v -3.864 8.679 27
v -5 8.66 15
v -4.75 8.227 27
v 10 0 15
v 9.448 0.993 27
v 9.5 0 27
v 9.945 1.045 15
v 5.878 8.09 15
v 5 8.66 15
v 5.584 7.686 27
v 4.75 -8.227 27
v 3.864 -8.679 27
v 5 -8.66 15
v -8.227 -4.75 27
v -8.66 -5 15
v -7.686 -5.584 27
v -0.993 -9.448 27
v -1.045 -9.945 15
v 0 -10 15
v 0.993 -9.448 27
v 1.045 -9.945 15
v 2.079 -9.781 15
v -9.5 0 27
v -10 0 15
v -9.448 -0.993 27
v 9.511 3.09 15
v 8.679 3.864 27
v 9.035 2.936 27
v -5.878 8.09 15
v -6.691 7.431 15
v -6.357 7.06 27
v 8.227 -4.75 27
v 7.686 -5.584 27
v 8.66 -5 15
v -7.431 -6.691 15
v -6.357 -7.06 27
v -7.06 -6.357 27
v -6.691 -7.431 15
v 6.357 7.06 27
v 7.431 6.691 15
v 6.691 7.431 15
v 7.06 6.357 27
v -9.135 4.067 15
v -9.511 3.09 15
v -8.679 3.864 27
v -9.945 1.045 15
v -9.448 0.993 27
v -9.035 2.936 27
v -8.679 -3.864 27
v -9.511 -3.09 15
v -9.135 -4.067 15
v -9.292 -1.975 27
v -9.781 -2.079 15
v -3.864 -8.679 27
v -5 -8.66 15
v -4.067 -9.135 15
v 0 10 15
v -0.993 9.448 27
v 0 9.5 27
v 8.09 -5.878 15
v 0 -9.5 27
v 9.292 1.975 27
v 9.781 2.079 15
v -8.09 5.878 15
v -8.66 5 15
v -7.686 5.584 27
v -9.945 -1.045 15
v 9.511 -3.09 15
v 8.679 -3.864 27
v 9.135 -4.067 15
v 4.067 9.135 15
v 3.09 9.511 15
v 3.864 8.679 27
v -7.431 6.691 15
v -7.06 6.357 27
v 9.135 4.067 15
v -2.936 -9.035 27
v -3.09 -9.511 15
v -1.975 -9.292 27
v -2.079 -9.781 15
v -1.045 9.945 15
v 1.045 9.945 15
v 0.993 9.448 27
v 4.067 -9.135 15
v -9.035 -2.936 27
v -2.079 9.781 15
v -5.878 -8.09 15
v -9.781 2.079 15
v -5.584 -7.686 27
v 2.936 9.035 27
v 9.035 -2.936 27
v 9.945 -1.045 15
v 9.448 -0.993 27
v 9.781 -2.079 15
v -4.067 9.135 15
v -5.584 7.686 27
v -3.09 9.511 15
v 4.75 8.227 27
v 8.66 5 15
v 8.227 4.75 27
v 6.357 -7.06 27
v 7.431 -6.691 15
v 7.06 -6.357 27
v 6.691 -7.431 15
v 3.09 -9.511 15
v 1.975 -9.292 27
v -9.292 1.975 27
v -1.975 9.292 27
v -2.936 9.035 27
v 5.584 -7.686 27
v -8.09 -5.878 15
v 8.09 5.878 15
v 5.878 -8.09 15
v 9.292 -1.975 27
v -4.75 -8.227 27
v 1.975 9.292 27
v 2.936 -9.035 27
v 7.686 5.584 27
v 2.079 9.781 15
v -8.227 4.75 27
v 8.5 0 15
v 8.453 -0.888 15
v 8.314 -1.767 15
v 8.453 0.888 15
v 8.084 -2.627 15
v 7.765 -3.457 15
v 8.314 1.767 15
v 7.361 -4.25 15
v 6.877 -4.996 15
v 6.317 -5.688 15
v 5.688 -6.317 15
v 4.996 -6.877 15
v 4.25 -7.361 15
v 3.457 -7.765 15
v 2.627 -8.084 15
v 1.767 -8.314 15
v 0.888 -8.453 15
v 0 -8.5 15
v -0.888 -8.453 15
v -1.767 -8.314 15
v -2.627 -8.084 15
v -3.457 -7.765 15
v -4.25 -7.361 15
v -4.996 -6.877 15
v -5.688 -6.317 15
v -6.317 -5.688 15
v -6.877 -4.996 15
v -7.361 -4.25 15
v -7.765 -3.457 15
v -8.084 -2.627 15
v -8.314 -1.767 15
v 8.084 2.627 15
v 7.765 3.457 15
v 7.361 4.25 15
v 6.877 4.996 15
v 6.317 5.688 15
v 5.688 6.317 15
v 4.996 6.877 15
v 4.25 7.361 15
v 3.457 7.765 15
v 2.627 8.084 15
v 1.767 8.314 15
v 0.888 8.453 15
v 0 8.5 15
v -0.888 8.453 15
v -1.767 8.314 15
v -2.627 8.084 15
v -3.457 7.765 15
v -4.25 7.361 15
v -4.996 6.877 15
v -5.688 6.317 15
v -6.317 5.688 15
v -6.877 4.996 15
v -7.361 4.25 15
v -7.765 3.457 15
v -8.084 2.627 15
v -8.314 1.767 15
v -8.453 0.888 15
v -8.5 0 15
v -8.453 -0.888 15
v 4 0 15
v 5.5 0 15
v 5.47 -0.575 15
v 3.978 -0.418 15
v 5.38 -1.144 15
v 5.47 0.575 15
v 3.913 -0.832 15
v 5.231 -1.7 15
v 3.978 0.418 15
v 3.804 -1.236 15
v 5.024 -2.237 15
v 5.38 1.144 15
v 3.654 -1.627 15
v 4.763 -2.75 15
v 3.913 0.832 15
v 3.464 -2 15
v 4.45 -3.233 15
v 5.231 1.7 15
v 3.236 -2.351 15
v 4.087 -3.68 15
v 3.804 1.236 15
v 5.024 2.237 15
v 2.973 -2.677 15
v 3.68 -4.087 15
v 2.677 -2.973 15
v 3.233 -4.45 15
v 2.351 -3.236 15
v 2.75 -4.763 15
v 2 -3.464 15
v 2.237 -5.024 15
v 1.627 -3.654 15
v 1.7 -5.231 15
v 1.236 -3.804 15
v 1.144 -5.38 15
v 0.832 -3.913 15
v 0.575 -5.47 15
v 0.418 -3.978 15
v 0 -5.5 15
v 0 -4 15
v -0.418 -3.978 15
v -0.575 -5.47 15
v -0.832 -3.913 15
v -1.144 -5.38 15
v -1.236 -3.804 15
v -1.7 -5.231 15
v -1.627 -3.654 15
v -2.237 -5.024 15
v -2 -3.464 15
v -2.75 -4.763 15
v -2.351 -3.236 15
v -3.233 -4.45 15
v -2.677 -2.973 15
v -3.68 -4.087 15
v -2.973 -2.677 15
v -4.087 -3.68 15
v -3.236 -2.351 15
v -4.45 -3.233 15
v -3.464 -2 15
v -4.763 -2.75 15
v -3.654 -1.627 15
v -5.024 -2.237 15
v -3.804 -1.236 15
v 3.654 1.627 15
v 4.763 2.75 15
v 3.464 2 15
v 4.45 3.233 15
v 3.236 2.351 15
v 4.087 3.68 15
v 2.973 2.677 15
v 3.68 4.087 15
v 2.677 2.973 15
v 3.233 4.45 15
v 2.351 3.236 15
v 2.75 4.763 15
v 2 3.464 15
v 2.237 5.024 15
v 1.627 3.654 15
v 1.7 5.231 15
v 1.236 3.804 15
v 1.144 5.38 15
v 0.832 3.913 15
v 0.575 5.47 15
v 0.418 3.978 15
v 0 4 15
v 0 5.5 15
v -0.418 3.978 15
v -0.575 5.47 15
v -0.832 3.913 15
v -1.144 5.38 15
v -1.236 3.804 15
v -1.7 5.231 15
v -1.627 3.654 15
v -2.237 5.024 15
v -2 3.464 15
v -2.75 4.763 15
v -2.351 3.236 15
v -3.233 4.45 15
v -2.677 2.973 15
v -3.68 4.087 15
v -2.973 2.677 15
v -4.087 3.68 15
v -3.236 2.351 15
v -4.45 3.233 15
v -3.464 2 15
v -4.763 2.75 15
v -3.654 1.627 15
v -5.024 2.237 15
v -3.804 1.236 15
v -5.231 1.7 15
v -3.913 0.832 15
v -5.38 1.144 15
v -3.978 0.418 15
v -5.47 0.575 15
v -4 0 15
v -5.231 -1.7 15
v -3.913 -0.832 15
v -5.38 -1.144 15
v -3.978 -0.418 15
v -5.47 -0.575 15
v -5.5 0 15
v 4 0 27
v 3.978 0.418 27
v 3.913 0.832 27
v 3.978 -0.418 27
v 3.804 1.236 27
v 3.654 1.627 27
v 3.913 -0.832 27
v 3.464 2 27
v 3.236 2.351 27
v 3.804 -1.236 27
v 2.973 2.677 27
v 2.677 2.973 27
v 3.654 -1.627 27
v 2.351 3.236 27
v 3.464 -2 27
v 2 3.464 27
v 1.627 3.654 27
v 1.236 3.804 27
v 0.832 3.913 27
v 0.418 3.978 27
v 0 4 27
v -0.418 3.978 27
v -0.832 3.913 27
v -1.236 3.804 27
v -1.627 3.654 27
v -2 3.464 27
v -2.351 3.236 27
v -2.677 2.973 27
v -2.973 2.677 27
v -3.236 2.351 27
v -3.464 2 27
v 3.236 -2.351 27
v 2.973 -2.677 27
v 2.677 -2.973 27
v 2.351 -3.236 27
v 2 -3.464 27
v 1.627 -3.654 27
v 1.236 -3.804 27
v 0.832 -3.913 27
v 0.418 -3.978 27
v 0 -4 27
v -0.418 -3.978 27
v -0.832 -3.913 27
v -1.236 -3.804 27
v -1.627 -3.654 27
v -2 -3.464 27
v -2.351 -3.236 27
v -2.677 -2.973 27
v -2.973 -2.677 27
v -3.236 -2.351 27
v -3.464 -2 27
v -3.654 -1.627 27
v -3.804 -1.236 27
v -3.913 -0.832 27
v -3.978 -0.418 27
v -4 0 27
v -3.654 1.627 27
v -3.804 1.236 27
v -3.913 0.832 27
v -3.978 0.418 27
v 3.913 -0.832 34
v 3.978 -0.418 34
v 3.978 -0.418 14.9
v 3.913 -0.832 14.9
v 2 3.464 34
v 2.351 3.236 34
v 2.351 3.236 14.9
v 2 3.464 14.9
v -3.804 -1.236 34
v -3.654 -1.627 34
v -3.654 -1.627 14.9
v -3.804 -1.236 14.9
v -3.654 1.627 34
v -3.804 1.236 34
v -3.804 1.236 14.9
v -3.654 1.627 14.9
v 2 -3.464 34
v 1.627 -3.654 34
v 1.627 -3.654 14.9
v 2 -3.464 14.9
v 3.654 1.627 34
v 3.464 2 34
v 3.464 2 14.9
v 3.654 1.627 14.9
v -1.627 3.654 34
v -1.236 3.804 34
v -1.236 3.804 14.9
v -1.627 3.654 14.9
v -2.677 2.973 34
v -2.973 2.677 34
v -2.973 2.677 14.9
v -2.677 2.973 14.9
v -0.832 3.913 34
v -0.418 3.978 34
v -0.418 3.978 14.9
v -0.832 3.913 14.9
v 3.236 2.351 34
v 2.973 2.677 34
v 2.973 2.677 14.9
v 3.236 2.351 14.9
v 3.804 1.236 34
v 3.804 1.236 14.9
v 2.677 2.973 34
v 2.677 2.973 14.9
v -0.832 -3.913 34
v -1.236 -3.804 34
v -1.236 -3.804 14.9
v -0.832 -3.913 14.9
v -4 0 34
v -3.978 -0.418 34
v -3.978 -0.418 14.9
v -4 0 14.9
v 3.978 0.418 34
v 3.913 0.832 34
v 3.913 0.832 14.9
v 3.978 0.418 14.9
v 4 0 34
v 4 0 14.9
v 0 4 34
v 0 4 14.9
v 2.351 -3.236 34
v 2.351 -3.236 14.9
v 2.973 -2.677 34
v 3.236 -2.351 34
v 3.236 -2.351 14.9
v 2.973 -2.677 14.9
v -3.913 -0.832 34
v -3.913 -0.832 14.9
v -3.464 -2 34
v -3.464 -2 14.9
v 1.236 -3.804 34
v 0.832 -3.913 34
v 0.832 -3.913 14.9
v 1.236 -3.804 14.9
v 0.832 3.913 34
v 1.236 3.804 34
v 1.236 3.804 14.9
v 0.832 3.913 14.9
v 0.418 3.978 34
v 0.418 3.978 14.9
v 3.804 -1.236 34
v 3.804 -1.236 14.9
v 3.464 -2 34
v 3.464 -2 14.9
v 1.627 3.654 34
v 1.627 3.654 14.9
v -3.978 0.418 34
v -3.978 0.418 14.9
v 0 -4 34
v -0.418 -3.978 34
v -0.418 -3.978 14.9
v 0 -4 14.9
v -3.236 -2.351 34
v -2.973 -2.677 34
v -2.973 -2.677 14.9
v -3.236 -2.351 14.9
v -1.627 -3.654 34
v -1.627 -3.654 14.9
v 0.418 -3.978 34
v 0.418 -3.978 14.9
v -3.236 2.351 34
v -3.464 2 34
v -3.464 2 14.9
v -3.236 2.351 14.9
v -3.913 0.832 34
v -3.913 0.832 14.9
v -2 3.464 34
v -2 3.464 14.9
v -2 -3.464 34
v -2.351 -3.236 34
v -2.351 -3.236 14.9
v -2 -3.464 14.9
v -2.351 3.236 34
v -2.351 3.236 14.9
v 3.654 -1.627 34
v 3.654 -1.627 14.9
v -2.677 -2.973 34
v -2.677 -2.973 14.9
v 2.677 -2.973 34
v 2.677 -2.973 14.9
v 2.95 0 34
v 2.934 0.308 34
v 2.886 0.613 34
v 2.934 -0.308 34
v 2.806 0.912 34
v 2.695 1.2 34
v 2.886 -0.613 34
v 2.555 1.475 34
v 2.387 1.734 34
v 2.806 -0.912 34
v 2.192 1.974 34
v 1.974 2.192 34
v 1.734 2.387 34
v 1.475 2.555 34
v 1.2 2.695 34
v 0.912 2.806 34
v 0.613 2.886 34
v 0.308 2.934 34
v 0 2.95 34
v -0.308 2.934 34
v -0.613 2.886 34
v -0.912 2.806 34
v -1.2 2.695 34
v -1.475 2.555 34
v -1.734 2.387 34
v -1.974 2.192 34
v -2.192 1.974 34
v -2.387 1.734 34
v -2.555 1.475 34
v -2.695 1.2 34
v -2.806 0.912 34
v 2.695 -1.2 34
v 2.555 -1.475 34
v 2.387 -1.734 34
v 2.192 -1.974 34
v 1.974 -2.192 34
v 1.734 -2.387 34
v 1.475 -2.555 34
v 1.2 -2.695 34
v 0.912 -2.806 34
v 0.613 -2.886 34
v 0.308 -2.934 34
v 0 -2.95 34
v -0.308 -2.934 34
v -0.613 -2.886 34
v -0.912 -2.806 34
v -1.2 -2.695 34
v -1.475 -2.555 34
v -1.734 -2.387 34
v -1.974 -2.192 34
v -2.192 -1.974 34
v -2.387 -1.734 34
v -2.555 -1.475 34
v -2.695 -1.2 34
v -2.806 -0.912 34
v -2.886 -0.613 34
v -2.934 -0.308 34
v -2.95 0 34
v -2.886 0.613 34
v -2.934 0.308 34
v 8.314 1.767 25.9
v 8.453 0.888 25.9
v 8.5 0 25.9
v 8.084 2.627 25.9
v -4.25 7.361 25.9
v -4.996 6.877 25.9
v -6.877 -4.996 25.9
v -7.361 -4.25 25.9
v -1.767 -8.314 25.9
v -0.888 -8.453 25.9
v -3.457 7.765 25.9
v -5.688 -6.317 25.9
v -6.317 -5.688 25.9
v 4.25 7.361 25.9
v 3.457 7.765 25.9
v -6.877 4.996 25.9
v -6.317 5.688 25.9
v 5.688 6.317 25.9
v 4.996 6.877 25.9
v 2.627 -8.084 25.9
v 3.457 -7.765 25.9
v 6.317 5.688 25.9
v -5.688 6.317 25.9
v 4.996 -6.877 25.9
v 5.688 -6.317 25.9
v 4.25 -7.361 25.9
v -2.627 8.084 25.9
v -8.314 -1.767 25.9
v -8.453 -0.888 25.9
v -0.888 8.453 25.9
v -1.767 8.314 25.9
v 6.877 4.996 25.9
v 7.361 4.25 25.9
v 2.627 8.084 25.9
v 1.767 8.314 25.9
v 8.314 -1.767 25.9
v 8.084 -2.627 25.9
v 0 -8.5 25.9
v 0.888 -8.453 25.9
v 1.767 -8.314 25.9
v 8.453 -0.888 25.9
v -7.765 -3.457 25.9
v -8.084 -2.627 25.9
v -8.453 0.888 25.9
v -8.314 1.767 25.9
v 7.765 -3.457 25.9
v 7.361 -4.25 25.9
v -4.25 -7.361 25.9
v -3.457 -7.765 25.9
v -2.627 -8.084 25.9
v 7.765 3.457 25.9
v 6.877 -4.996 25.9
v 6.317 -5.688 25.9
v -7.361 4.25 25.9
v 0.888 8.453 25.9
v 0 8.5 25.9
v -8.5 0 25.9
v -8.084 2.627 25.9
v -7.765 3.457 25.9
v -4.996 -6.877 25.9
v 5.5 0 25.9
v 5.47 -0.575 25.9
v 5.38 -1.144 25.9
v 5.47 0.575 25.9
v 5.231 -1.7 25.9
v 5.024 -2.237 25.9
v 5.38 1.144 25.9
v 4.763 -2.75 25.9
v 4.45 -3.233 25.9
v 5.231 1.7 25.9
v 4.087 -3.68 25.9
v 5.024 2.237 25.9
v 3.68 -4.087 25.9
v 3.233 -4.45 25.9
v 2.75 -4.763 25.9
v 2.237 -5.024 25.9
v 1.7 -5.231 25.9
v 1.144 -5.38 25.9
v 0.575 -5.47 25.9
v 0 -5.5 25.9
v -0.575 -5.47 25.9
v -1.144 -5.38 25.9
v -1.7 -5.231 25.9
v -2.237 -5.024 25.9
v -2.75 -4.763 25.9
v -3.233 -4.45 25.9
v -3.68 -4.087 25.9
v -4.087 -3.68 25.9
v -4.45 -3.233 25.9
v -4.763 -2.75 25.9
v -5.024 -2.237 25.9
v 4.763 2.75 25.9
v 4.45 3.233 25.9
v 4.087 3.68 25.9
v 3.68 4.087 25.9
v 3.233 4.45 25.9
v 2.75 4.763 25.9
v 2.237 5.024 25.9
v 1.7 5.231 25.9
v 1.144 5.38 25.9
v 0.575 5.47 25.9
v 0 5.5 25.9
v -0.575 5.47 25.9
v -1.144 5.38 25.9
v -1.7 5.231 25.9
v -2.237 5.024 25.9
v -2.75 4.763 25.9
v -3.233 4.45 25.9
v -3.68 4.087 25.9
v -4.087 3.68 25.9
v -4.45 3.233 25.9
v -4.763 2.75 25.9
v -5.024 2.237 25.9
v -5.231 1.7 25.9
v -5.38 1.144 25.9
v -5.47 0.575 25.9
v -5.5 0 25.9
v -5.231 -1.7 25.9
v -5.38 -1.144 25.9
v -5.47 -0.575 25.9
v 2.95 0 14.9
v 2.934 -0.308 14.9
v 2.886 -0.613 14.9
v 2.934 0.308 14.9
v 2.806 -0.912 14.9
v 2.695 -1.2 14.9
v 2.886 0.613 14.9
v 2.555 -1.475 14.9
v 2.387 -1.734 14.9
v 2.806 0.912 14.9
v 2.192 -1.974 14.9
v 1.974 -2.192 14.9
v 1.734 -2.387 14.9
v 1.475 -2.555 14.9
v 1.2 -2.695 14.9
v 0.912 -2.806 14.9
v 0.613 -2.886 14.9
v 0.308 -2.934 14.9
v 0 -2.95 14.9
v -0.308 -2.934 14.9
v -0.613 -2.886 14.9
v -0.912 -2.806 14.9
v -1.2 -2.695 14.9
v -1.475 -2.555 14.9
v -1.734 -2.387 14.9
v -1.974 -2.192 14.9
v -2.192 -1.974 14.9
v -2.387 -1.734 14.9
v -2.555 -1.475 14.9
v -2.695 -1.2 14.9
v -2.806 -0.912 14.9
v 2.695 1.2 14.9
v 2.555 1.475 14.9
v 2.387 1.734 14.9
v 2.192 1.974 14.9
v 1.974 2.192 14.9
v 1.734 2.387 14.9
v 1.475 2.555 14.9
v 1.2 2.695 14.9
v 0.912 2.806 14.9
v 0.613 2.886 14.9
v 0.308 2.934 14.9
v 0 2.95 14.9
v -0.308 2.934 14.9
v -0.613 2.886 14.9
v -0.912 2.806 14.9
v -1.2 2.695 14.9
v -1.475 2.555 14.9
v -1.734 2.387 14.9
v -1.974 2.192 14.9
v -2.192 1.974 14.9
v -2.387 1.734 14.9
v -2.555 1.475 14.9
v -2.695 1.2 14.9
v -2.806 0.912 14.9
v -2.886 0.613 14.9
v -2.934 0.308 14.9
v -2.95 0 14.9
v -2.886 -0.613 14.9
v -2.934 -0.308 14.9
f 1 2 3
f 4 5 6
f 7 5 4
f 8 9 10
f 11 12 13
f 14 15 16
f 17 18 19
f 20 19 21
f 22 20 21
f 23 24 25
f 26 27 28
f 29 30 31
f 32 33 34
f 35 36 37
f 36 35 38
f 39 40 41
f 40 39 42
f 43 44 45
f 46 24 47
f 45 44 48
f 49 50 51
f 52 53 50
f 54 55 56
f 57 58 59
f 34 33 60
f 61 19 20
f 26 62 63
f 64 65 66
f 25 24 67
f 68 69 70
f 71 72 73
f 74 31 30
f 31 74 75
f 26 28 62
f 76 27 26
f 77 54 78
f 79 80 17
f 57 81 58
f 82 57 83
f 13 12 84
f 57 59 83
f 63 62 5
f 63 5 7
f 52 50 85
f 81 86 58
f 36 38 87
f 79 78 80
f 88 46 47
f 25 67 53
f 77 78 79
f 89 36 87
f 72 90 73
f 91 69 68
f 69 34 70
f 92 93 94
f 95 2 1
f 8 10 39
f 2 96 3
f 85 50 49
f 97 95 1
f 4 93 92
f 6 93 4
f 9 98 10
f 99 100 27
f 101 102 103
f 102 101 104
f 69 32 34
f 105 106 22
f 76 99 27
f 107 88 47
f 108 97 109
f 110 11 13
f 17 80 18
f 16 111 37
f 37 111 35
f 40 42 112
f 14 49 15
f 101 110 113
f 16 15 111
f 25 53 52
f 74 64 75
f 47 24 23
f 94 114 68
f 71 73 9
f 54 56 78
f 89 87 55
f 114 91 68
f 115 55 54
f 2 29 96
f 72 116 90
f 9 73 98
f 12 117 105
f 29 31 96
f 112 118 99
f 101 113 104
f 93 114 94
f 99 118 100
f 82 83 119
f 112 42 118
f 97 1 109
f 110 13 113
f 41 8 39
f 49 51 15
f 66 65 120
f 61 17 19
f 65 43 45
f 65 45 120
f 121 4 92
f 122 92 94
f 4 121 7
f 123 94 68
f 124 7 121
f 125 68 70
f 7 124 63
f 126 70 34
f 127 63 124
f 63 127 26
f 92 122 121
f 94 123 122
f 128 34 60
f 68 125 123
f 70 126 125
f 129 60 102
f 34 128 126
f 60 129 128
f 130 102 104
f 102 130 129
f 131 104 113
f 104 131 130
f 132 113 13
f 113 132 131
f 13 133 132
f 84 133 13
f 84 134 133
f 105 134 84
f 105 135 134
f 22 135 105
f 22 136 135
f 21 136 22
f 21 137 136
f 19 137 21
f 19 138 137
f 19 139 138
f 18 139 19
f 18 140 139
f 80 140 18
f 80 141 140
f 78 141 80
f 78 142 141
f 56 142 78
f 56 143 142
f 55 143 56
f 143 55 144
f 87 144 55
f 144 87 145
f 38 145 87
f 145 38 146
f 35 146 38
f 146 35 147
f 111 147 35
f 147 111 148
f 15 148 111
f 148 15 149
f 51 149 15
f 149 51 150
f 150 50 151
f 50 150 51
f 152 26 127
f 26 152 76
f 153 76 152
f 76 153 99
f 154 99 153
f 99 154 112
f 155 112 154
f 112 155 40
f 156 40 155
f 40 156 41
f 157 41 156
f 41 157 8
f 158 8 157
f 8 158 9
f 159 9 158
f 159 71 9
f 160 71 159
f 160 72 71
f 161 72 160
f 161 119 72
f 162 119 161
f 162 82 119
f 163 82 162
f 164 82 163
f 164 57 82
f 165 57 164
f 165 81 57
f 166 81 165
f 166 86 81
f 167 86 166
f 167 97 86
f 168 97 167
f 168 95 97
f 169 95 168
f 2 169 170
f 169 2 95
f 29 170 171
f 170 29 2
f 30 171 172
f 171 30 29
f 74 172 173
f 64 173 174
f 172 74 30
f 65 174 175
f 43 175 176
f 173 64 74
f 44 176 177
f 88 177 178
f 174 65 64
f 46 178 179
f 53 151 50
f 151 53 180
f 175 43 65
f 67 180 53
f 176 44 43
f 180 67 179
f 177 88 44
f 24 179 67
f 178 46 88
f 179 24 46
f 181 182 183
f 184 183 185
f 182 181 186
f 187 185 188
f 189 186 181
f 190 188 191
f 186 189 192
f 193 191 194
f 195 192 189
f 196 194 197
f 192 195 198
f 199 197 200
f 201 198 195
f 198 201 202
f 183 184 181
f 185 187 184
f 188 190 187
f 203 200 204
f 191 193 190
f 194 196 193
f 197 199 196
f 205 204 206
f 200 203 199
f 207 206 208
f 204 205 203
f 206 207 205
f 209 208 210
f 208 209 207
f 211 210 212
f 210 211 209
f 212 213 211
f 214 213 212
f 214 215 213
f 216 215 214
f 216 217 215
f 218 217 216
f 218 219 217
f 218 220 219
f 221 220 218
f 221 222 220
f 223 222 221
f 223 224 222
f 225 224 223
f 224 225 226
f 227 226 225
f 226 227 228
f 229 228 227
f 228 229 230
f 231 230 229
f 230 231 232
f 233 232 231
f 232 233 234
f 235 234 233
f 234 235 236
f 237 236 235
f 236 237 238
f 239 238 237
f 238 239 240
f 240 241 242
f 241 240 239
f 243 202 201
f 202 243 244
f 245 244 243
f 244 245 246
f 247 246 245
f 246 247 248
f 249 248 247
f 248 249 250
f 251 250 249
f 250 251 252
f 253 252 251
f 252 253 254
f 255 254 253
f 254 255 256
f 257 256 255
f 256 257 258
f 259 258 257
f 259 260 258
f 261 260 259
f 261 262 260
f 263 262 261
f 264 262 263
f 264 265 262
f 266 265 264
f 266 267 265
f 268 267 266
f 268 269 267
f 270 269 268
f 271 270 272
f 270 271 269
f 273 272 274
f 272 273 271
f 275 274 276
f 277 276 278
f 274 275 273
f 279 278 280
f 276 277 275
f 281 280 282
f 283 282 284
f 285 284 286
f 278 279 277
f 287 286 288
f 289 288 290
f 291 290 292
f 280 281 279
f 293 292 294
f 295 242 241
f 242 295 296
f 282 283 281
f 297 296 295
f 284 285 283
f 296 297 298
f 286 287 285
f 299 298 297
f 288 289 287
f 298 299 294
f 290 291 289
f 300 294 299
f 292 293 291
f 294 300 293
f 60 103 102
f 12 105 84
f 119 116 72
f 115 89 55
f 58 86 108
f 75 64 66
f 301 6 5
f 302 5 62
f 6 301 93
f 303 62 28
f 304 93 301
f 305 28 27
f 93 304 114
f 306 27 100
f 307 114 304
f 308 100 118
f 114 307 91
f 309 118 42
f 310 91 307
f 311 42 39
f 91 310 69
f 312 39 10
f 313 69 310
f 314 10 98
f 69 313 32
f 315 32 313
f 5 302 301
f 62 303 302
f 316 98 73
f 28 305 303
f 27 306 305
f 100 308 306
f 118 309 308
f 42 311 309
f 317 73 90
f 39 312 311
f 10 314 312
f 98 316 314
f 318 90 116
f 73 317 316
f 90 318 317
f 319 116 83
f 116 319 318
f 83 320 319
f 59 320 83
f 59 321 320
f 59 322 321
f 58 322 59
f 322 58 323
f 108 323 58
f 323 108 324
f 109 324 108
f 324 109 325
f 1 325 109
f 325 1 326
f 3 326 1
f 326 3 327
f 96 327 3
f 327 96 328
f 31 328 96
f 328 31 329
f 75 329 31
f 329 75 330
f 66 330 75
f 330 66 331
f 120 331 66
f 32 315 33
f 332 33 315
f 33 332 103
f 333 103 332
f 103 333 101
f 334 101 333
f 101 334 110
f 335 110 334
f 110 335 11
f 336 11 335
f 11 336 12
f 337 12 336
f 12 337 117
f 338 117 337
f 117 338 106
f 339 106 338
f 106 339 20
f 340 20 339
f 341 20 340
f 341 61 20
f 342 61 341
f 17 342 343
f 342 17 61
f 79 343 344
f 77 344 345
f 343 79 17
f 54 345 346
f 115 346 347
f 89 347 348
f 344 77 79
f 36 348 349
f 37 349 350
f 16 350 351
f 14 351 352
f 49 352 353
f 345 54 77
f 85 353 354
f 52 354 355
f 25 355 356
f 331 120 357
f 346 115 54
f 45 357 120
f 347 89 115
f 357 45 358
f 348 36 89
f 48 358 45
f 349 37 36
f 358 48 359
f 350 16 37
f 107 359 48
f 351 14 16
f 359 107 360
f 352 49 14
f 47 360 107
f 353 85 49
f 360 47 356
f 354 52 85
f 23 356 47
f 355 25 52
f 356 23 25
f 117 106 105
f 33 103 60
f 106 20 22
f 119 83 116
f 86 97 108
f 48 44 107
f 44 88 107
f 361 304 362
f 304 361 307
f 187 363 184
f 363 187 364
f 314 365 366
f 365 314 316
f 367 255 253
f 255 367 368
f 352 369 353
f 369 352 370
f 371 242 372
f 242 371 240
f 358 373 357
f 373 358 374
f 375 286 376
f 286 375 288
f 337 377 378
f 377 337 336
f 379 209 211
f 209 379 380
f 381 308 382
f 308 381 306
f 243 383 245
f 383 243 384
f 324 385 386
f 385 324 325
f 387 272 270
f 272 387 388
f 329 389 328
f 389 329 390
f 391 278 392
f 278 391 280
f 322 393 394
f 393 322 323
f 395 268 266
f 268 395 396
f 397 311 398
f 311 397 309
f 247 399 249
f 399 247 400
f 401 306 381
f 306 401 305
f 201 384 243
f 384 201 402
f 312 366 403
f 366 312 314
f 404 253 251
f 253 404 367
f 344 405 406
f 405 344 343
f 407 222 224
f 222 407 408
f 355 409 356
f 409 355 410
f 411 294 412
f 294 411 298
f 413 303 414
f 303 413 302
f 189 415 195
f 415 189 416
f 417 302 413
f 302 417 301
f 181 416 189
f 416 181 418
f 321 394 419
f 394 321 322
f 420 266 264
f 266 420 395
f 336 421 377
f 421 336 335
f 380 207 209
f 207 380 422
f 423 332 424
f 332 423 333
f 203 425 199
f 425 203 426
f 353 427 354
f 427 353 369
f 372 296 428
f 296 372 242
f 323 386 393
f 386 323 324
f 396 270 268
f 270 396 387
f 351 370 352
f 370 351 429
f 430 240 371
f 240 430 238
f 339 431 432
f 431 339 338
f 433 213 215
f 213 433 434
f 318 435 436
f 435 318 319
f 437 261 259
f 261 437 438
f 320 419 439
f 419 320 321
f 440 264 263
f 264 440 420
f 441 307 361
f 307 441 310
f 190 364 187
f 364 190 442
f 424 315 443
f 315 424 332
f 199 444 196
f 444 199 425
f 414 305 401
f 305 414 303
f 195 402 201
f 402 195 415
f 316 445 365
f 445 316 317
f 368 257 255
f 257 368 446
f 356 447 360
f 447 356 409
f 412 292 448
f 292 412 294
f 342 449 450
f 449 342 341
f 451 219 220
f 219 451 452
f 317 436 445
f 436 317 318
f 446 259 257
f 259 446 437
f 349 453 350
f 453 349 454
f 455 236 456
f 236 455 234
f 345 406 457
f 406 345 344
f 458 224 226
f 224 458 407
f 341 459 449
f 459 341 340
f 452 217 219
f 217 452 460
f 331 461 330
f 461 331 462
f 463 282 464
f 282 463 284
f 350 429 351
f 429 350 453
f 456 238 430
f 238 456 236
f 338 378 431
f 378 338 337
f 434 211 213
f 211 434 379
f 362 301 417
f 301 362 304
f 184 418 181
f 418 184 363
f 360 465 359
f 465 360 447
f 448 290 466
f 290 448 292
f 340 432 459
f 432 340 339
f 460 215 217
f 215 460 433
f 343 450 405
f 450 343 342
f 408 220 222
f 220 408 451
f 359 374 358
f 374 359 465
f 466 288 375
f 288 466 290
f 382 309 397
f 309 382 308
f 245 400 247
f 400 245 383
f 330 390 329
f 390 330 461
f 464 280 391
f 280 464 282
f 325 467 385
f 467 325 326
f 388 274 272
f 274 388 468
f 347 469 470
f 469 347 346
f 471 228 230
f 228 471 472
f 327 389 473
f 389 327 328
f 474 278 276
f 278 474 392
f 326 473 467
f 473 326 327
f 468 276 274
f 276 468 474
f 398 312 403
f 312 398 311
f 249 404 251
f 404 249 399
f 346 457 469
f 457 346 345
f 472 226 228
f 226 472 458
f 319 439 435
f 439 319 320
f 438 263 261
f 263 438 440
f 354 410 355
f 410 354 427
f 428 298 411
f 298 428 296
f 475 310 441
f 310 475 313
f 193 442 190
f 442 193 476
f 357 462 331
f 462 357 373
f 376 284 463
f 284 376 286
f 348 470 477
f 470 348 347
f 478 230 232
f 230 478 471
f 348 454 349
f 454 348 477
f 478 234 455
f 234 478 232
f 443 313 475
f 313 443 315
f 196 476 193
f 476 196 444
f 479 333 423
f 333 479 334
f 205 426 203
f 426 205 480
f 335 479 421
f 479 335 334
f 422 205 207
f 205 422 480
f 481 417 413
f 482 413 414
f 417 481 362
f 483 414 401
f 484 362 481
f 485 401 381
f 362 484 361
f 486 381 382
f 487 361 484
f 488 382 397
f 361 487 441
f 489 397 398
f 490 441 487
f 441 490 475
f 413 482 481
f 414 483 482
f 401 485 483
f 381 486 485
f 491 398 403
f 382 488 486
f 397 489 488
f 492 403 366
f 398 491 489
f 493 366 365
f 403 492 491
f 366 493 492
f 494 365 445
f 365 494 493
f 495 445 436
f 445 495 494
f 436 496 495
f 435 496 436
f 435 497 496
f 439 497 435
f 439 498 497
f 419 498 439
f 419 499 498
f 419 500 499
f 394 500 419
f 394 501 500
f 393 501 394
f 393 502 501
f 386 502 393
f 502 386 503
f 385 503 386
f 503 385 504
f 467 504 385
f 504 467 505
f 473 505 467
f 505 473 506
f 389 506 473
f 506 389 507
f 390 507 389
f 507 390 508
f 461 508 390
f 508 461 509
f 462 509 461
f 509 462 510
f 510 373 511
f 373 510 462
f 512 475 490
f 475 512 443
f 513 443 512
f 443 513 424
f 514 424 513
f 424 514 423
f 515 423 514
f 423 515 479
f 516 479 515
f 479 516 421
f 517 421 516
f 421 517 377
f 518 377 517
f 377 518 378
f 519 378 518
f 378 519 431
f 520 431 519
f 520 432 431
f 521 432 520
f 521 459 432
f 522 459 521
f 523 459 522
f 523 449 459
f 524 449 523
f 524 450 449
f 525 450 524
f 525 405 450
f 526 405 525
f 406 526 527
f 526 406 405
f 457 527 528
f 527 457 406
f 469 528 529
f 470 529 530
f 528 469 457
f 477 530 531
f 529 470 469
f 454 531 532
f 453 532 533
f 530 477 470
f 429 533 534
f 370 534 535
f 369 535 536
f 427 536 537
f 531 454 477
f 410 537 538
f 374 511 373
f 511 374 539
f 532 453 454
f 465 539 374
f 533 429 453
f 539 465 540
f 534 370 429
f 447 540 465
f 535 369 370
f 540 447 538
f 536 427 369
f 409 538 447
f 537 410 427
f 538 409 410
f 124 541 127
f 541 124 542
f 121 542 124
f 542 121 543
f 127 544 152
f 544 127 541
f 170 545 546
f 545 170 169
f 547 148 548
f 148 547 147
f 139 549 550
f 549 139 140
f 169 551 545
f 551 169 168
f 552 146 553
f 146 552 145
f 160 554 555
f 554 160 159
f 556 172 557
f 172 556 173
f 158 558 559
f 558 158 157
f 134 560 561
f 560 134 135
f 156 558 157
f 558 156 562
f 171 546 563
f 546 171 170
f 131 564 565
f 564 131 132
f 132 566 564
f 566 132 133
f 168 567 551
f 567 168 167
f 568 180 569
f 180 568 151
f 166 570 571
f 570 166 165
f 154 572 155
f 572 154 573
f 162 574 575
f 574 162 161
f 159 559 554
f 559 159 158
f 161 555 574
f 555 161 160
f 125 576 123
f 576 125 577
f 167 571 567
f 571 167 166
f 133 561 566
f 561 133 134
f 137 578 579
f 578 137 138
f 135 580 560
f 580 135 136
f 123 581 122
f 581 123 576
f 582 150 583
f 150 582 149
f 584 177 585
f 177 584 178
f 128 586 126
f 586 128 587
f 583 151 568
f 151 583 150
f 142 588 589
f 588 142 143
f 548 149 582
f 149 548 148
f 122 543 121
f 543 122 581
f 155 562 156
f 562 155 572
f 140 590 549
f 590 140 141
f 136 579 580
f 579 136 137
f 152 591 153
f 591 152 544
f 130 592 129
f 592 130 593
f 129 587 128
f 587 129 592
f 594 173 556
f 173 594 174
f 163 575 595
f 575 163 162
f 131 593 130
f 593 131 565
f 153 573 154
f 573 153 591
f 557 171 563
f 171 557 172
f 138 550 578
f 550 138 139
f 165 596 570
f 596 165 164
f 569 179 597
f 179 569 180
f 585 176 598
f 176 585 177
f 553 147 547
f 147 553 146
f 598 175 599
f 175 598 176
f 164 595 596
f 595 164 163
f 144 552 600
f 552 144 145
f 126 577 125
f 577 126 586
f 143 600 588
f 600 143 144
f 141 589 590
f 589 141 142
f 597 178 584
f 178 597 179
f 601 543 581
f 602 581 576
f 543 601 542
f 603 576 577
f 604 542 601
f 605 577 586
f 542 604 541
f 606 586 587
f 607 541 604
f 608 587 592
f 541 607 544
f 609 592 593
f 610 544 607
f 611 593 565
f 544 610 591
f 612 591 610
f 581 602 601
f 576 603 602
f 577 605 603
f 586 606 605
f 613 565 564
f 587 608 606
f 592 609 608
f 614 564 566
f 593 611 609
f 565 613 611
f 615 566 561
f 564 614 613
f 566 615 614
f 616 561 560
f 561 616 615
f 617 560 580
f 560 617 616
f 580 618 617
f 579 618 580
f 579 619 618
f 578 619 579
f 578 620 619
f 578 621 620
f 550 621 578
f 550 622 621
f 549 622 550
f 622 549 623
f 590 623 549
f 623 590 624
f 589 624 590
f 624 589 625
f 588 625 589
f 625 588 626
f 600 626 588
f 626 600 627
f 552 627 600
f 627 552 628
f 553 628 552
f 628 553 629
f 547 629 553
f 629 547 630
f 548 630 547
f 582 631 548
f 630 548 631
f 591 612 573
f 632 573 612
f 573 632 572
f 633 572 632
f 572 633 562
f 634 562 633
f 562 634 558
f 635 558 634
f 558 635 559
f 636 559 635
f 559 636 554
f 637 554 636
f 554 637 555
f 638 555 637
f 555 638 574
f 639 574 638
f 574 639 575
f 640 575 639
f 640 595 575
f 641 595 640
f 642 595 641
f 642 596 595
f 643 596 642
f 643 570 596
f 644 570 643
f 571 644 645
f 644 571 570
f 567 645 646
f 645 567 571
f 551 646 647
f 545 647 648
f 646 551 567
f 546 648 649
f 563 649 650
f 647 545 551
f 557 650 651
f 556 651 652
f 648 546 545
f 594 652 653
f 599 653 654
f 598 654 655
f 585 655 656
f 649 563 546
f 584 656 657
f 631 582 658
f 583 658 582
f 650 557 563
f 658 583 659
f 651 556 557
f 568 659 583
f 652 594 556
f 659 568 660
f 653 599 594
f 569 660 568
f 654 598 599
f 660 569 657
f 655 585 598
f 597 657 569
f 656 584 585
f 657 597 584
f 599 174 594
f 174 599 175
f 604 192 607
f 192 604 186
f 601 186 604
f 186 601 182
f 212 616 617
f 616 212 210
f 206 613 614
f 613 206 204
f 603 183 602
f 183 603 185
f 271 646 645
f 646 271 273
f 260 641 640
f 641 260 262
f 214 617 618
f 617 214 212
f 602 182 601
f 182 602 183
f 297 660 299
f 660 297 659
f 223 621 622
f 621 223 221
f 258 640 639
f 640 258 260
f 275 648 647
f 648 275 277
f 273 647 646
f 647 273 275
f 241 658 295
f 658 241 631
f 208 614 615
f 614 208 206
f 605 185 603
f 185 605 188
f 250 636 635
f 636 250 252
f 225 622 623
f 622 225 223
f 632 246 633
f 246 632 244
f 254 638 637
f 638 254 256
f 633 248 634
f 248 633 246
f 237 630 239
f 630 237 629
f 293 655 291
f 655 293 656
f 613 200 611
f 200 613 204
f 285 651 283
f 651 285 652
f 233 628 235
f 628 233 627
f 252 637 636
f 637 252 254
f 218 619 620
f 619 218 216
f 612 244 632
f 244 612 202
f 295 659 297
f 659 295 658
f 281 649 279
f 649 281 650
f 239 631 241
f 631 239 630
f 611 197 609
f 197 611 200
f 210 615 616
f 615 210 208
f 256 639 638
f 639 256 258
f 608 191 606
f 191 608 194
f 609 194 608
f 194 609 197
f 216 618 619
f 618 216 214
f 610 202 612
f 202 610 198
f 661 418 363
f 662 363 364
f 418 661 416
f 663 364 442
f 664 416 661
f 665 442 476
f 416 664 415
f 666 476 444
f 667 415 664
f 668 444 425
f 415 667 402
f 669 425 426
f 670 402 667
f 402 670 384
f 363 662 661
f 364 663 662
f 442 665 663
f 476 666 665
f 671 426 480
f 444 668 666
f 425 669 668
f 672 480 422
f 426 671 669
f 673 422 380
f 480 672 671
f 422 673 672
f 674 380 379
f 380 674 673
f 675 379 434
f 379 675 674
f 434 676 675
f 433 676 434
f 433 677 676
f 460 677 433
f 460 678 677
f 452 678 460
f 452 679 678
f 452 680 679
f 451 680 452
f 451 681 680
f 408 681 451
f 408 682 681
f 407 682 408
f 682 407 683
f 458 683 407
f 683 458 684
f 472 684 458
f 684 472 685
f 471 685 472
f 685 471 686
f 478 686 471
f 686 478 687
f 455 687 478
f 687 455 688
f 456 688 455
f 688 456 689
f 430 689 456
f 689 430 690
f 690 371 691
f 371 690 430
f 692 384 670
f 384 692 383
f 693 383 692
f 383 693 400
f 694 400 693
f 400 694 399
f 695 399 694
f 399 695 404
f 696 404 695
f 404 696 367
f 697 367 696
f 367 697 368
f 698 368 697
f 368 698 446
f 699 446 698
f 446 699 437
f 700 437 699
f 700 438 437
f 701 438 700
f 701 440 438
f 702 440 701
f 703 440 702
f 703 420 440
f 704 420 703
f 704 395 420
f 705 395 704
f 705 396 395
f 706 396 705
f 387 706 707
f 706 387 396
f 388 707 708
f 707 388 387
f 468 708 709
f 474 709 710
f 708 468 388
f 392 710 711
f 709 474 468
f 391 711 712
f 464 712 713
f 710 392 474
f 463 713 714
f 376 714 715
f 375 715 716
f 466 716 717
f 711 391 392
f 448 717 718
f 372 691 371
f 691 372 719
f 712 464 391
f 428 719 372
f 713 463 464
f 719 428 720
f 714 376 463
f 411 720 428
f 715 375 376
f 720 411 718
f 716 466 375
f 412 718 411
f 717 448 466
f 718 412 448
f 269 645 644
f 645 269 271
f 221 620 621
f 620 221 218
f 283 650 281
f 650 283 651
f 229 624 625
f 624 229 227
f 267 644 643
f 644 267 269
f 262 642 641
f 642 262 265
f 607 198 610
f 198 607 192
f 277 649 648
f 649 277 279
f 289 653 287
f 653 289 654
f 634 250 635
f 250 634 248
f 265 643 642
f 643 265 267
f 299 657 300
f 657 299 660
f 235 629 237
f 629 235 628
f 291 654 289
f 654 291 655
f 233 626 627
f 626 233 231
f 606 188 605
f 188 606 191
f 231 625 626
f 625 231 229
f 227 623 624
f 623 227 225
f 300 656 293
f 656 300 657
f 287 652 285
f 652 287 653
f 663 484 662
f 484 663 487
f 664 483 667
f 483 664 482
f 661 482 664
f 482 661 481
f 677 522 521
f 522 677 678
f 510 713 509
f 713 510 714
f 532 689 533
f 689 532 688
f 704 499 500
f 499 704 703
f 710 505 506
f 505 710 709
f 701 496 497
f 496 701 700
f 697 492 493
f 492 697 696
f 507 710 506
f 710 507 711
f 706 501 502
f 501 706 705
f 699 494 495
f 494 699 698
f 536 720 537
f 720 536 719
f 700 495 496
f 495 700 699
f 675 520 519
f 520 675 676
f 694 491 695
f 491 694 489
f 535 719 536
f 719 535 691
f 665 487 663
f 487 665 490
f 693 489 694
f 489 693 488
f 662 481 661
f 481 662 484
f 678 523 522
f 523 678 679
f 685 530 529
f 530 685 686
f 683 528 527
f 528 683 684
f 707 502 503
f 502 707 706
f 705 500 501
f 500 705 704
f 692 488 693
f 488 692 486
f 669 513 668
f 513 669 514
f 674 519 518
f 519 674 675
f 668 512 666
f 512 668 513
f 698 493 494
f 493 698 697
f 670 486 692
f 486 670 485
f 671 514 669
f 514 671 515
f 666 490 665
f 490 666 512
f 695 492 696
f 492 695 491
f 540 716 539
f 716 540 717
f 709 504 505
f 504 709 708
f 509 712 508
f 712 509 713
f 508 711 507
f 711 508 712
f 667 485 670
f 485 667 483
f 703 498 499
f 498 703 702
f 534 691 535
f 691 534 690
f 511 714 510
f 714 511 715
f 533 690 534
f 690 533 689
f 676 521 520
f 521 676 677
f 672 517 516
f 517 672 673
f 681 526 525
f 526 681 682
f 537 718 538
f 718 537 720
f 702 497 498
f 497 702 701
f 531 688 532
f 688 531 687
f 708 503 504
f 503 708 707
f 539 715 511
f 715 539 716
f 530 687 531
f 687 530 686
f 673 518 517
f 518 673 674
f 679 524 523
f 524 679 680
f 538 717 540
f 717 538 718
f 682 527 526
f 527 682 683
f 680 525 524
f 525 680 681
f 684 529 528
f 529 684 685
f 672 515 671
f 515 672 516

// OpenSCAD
// this is to get a smaller hose on the "saugrhohr" 
// print this with TPU!

$fn=60;
difference(){
union(){
translate([0,0,15])cylinder(d1=20,d2=19,h=12);
    translate([0,0,14])cylinder(d1=8,d2=8,h=20);
    /*
    translate([0,0,48])cylinder(d1=6.7,d2=7,h=0.4);
    translate([0,0,50])cylinder(d1=6.4,d2=6.7,h=0.4);
    translate([0,0,52])cylinder(d1=6.1,d2=6.5,h=0.4);
    translate([0,0,54])cylinder(d1=5.9,d2=6.2,h=0.4);
    translate([0,0,56])cylinder(d1=5.7,d2=6.0,h=0.4);
    translate([0,0,58])cylinder(d1=5.5,d2=5.8,h=0.4);
    translate([0,0,60])cylinder(d1=5.3,d2=5.6,h=0.4);
    translate([0,0,62])cylinder(d1=5.1,d2=5.4,h=0.4);
    */
}
    translate([0,0,13.9])
color("red")difference(){
  cylinder(d=17,h=12);
  translate([0,-0,1])cylinder(d1=11,d2=11,h=18);
}
//color("teal")translate([0,0,-1])cylinder(d=11,h=26);
translate([0,0,14])cylinder(d=5.9,h=46);
}
